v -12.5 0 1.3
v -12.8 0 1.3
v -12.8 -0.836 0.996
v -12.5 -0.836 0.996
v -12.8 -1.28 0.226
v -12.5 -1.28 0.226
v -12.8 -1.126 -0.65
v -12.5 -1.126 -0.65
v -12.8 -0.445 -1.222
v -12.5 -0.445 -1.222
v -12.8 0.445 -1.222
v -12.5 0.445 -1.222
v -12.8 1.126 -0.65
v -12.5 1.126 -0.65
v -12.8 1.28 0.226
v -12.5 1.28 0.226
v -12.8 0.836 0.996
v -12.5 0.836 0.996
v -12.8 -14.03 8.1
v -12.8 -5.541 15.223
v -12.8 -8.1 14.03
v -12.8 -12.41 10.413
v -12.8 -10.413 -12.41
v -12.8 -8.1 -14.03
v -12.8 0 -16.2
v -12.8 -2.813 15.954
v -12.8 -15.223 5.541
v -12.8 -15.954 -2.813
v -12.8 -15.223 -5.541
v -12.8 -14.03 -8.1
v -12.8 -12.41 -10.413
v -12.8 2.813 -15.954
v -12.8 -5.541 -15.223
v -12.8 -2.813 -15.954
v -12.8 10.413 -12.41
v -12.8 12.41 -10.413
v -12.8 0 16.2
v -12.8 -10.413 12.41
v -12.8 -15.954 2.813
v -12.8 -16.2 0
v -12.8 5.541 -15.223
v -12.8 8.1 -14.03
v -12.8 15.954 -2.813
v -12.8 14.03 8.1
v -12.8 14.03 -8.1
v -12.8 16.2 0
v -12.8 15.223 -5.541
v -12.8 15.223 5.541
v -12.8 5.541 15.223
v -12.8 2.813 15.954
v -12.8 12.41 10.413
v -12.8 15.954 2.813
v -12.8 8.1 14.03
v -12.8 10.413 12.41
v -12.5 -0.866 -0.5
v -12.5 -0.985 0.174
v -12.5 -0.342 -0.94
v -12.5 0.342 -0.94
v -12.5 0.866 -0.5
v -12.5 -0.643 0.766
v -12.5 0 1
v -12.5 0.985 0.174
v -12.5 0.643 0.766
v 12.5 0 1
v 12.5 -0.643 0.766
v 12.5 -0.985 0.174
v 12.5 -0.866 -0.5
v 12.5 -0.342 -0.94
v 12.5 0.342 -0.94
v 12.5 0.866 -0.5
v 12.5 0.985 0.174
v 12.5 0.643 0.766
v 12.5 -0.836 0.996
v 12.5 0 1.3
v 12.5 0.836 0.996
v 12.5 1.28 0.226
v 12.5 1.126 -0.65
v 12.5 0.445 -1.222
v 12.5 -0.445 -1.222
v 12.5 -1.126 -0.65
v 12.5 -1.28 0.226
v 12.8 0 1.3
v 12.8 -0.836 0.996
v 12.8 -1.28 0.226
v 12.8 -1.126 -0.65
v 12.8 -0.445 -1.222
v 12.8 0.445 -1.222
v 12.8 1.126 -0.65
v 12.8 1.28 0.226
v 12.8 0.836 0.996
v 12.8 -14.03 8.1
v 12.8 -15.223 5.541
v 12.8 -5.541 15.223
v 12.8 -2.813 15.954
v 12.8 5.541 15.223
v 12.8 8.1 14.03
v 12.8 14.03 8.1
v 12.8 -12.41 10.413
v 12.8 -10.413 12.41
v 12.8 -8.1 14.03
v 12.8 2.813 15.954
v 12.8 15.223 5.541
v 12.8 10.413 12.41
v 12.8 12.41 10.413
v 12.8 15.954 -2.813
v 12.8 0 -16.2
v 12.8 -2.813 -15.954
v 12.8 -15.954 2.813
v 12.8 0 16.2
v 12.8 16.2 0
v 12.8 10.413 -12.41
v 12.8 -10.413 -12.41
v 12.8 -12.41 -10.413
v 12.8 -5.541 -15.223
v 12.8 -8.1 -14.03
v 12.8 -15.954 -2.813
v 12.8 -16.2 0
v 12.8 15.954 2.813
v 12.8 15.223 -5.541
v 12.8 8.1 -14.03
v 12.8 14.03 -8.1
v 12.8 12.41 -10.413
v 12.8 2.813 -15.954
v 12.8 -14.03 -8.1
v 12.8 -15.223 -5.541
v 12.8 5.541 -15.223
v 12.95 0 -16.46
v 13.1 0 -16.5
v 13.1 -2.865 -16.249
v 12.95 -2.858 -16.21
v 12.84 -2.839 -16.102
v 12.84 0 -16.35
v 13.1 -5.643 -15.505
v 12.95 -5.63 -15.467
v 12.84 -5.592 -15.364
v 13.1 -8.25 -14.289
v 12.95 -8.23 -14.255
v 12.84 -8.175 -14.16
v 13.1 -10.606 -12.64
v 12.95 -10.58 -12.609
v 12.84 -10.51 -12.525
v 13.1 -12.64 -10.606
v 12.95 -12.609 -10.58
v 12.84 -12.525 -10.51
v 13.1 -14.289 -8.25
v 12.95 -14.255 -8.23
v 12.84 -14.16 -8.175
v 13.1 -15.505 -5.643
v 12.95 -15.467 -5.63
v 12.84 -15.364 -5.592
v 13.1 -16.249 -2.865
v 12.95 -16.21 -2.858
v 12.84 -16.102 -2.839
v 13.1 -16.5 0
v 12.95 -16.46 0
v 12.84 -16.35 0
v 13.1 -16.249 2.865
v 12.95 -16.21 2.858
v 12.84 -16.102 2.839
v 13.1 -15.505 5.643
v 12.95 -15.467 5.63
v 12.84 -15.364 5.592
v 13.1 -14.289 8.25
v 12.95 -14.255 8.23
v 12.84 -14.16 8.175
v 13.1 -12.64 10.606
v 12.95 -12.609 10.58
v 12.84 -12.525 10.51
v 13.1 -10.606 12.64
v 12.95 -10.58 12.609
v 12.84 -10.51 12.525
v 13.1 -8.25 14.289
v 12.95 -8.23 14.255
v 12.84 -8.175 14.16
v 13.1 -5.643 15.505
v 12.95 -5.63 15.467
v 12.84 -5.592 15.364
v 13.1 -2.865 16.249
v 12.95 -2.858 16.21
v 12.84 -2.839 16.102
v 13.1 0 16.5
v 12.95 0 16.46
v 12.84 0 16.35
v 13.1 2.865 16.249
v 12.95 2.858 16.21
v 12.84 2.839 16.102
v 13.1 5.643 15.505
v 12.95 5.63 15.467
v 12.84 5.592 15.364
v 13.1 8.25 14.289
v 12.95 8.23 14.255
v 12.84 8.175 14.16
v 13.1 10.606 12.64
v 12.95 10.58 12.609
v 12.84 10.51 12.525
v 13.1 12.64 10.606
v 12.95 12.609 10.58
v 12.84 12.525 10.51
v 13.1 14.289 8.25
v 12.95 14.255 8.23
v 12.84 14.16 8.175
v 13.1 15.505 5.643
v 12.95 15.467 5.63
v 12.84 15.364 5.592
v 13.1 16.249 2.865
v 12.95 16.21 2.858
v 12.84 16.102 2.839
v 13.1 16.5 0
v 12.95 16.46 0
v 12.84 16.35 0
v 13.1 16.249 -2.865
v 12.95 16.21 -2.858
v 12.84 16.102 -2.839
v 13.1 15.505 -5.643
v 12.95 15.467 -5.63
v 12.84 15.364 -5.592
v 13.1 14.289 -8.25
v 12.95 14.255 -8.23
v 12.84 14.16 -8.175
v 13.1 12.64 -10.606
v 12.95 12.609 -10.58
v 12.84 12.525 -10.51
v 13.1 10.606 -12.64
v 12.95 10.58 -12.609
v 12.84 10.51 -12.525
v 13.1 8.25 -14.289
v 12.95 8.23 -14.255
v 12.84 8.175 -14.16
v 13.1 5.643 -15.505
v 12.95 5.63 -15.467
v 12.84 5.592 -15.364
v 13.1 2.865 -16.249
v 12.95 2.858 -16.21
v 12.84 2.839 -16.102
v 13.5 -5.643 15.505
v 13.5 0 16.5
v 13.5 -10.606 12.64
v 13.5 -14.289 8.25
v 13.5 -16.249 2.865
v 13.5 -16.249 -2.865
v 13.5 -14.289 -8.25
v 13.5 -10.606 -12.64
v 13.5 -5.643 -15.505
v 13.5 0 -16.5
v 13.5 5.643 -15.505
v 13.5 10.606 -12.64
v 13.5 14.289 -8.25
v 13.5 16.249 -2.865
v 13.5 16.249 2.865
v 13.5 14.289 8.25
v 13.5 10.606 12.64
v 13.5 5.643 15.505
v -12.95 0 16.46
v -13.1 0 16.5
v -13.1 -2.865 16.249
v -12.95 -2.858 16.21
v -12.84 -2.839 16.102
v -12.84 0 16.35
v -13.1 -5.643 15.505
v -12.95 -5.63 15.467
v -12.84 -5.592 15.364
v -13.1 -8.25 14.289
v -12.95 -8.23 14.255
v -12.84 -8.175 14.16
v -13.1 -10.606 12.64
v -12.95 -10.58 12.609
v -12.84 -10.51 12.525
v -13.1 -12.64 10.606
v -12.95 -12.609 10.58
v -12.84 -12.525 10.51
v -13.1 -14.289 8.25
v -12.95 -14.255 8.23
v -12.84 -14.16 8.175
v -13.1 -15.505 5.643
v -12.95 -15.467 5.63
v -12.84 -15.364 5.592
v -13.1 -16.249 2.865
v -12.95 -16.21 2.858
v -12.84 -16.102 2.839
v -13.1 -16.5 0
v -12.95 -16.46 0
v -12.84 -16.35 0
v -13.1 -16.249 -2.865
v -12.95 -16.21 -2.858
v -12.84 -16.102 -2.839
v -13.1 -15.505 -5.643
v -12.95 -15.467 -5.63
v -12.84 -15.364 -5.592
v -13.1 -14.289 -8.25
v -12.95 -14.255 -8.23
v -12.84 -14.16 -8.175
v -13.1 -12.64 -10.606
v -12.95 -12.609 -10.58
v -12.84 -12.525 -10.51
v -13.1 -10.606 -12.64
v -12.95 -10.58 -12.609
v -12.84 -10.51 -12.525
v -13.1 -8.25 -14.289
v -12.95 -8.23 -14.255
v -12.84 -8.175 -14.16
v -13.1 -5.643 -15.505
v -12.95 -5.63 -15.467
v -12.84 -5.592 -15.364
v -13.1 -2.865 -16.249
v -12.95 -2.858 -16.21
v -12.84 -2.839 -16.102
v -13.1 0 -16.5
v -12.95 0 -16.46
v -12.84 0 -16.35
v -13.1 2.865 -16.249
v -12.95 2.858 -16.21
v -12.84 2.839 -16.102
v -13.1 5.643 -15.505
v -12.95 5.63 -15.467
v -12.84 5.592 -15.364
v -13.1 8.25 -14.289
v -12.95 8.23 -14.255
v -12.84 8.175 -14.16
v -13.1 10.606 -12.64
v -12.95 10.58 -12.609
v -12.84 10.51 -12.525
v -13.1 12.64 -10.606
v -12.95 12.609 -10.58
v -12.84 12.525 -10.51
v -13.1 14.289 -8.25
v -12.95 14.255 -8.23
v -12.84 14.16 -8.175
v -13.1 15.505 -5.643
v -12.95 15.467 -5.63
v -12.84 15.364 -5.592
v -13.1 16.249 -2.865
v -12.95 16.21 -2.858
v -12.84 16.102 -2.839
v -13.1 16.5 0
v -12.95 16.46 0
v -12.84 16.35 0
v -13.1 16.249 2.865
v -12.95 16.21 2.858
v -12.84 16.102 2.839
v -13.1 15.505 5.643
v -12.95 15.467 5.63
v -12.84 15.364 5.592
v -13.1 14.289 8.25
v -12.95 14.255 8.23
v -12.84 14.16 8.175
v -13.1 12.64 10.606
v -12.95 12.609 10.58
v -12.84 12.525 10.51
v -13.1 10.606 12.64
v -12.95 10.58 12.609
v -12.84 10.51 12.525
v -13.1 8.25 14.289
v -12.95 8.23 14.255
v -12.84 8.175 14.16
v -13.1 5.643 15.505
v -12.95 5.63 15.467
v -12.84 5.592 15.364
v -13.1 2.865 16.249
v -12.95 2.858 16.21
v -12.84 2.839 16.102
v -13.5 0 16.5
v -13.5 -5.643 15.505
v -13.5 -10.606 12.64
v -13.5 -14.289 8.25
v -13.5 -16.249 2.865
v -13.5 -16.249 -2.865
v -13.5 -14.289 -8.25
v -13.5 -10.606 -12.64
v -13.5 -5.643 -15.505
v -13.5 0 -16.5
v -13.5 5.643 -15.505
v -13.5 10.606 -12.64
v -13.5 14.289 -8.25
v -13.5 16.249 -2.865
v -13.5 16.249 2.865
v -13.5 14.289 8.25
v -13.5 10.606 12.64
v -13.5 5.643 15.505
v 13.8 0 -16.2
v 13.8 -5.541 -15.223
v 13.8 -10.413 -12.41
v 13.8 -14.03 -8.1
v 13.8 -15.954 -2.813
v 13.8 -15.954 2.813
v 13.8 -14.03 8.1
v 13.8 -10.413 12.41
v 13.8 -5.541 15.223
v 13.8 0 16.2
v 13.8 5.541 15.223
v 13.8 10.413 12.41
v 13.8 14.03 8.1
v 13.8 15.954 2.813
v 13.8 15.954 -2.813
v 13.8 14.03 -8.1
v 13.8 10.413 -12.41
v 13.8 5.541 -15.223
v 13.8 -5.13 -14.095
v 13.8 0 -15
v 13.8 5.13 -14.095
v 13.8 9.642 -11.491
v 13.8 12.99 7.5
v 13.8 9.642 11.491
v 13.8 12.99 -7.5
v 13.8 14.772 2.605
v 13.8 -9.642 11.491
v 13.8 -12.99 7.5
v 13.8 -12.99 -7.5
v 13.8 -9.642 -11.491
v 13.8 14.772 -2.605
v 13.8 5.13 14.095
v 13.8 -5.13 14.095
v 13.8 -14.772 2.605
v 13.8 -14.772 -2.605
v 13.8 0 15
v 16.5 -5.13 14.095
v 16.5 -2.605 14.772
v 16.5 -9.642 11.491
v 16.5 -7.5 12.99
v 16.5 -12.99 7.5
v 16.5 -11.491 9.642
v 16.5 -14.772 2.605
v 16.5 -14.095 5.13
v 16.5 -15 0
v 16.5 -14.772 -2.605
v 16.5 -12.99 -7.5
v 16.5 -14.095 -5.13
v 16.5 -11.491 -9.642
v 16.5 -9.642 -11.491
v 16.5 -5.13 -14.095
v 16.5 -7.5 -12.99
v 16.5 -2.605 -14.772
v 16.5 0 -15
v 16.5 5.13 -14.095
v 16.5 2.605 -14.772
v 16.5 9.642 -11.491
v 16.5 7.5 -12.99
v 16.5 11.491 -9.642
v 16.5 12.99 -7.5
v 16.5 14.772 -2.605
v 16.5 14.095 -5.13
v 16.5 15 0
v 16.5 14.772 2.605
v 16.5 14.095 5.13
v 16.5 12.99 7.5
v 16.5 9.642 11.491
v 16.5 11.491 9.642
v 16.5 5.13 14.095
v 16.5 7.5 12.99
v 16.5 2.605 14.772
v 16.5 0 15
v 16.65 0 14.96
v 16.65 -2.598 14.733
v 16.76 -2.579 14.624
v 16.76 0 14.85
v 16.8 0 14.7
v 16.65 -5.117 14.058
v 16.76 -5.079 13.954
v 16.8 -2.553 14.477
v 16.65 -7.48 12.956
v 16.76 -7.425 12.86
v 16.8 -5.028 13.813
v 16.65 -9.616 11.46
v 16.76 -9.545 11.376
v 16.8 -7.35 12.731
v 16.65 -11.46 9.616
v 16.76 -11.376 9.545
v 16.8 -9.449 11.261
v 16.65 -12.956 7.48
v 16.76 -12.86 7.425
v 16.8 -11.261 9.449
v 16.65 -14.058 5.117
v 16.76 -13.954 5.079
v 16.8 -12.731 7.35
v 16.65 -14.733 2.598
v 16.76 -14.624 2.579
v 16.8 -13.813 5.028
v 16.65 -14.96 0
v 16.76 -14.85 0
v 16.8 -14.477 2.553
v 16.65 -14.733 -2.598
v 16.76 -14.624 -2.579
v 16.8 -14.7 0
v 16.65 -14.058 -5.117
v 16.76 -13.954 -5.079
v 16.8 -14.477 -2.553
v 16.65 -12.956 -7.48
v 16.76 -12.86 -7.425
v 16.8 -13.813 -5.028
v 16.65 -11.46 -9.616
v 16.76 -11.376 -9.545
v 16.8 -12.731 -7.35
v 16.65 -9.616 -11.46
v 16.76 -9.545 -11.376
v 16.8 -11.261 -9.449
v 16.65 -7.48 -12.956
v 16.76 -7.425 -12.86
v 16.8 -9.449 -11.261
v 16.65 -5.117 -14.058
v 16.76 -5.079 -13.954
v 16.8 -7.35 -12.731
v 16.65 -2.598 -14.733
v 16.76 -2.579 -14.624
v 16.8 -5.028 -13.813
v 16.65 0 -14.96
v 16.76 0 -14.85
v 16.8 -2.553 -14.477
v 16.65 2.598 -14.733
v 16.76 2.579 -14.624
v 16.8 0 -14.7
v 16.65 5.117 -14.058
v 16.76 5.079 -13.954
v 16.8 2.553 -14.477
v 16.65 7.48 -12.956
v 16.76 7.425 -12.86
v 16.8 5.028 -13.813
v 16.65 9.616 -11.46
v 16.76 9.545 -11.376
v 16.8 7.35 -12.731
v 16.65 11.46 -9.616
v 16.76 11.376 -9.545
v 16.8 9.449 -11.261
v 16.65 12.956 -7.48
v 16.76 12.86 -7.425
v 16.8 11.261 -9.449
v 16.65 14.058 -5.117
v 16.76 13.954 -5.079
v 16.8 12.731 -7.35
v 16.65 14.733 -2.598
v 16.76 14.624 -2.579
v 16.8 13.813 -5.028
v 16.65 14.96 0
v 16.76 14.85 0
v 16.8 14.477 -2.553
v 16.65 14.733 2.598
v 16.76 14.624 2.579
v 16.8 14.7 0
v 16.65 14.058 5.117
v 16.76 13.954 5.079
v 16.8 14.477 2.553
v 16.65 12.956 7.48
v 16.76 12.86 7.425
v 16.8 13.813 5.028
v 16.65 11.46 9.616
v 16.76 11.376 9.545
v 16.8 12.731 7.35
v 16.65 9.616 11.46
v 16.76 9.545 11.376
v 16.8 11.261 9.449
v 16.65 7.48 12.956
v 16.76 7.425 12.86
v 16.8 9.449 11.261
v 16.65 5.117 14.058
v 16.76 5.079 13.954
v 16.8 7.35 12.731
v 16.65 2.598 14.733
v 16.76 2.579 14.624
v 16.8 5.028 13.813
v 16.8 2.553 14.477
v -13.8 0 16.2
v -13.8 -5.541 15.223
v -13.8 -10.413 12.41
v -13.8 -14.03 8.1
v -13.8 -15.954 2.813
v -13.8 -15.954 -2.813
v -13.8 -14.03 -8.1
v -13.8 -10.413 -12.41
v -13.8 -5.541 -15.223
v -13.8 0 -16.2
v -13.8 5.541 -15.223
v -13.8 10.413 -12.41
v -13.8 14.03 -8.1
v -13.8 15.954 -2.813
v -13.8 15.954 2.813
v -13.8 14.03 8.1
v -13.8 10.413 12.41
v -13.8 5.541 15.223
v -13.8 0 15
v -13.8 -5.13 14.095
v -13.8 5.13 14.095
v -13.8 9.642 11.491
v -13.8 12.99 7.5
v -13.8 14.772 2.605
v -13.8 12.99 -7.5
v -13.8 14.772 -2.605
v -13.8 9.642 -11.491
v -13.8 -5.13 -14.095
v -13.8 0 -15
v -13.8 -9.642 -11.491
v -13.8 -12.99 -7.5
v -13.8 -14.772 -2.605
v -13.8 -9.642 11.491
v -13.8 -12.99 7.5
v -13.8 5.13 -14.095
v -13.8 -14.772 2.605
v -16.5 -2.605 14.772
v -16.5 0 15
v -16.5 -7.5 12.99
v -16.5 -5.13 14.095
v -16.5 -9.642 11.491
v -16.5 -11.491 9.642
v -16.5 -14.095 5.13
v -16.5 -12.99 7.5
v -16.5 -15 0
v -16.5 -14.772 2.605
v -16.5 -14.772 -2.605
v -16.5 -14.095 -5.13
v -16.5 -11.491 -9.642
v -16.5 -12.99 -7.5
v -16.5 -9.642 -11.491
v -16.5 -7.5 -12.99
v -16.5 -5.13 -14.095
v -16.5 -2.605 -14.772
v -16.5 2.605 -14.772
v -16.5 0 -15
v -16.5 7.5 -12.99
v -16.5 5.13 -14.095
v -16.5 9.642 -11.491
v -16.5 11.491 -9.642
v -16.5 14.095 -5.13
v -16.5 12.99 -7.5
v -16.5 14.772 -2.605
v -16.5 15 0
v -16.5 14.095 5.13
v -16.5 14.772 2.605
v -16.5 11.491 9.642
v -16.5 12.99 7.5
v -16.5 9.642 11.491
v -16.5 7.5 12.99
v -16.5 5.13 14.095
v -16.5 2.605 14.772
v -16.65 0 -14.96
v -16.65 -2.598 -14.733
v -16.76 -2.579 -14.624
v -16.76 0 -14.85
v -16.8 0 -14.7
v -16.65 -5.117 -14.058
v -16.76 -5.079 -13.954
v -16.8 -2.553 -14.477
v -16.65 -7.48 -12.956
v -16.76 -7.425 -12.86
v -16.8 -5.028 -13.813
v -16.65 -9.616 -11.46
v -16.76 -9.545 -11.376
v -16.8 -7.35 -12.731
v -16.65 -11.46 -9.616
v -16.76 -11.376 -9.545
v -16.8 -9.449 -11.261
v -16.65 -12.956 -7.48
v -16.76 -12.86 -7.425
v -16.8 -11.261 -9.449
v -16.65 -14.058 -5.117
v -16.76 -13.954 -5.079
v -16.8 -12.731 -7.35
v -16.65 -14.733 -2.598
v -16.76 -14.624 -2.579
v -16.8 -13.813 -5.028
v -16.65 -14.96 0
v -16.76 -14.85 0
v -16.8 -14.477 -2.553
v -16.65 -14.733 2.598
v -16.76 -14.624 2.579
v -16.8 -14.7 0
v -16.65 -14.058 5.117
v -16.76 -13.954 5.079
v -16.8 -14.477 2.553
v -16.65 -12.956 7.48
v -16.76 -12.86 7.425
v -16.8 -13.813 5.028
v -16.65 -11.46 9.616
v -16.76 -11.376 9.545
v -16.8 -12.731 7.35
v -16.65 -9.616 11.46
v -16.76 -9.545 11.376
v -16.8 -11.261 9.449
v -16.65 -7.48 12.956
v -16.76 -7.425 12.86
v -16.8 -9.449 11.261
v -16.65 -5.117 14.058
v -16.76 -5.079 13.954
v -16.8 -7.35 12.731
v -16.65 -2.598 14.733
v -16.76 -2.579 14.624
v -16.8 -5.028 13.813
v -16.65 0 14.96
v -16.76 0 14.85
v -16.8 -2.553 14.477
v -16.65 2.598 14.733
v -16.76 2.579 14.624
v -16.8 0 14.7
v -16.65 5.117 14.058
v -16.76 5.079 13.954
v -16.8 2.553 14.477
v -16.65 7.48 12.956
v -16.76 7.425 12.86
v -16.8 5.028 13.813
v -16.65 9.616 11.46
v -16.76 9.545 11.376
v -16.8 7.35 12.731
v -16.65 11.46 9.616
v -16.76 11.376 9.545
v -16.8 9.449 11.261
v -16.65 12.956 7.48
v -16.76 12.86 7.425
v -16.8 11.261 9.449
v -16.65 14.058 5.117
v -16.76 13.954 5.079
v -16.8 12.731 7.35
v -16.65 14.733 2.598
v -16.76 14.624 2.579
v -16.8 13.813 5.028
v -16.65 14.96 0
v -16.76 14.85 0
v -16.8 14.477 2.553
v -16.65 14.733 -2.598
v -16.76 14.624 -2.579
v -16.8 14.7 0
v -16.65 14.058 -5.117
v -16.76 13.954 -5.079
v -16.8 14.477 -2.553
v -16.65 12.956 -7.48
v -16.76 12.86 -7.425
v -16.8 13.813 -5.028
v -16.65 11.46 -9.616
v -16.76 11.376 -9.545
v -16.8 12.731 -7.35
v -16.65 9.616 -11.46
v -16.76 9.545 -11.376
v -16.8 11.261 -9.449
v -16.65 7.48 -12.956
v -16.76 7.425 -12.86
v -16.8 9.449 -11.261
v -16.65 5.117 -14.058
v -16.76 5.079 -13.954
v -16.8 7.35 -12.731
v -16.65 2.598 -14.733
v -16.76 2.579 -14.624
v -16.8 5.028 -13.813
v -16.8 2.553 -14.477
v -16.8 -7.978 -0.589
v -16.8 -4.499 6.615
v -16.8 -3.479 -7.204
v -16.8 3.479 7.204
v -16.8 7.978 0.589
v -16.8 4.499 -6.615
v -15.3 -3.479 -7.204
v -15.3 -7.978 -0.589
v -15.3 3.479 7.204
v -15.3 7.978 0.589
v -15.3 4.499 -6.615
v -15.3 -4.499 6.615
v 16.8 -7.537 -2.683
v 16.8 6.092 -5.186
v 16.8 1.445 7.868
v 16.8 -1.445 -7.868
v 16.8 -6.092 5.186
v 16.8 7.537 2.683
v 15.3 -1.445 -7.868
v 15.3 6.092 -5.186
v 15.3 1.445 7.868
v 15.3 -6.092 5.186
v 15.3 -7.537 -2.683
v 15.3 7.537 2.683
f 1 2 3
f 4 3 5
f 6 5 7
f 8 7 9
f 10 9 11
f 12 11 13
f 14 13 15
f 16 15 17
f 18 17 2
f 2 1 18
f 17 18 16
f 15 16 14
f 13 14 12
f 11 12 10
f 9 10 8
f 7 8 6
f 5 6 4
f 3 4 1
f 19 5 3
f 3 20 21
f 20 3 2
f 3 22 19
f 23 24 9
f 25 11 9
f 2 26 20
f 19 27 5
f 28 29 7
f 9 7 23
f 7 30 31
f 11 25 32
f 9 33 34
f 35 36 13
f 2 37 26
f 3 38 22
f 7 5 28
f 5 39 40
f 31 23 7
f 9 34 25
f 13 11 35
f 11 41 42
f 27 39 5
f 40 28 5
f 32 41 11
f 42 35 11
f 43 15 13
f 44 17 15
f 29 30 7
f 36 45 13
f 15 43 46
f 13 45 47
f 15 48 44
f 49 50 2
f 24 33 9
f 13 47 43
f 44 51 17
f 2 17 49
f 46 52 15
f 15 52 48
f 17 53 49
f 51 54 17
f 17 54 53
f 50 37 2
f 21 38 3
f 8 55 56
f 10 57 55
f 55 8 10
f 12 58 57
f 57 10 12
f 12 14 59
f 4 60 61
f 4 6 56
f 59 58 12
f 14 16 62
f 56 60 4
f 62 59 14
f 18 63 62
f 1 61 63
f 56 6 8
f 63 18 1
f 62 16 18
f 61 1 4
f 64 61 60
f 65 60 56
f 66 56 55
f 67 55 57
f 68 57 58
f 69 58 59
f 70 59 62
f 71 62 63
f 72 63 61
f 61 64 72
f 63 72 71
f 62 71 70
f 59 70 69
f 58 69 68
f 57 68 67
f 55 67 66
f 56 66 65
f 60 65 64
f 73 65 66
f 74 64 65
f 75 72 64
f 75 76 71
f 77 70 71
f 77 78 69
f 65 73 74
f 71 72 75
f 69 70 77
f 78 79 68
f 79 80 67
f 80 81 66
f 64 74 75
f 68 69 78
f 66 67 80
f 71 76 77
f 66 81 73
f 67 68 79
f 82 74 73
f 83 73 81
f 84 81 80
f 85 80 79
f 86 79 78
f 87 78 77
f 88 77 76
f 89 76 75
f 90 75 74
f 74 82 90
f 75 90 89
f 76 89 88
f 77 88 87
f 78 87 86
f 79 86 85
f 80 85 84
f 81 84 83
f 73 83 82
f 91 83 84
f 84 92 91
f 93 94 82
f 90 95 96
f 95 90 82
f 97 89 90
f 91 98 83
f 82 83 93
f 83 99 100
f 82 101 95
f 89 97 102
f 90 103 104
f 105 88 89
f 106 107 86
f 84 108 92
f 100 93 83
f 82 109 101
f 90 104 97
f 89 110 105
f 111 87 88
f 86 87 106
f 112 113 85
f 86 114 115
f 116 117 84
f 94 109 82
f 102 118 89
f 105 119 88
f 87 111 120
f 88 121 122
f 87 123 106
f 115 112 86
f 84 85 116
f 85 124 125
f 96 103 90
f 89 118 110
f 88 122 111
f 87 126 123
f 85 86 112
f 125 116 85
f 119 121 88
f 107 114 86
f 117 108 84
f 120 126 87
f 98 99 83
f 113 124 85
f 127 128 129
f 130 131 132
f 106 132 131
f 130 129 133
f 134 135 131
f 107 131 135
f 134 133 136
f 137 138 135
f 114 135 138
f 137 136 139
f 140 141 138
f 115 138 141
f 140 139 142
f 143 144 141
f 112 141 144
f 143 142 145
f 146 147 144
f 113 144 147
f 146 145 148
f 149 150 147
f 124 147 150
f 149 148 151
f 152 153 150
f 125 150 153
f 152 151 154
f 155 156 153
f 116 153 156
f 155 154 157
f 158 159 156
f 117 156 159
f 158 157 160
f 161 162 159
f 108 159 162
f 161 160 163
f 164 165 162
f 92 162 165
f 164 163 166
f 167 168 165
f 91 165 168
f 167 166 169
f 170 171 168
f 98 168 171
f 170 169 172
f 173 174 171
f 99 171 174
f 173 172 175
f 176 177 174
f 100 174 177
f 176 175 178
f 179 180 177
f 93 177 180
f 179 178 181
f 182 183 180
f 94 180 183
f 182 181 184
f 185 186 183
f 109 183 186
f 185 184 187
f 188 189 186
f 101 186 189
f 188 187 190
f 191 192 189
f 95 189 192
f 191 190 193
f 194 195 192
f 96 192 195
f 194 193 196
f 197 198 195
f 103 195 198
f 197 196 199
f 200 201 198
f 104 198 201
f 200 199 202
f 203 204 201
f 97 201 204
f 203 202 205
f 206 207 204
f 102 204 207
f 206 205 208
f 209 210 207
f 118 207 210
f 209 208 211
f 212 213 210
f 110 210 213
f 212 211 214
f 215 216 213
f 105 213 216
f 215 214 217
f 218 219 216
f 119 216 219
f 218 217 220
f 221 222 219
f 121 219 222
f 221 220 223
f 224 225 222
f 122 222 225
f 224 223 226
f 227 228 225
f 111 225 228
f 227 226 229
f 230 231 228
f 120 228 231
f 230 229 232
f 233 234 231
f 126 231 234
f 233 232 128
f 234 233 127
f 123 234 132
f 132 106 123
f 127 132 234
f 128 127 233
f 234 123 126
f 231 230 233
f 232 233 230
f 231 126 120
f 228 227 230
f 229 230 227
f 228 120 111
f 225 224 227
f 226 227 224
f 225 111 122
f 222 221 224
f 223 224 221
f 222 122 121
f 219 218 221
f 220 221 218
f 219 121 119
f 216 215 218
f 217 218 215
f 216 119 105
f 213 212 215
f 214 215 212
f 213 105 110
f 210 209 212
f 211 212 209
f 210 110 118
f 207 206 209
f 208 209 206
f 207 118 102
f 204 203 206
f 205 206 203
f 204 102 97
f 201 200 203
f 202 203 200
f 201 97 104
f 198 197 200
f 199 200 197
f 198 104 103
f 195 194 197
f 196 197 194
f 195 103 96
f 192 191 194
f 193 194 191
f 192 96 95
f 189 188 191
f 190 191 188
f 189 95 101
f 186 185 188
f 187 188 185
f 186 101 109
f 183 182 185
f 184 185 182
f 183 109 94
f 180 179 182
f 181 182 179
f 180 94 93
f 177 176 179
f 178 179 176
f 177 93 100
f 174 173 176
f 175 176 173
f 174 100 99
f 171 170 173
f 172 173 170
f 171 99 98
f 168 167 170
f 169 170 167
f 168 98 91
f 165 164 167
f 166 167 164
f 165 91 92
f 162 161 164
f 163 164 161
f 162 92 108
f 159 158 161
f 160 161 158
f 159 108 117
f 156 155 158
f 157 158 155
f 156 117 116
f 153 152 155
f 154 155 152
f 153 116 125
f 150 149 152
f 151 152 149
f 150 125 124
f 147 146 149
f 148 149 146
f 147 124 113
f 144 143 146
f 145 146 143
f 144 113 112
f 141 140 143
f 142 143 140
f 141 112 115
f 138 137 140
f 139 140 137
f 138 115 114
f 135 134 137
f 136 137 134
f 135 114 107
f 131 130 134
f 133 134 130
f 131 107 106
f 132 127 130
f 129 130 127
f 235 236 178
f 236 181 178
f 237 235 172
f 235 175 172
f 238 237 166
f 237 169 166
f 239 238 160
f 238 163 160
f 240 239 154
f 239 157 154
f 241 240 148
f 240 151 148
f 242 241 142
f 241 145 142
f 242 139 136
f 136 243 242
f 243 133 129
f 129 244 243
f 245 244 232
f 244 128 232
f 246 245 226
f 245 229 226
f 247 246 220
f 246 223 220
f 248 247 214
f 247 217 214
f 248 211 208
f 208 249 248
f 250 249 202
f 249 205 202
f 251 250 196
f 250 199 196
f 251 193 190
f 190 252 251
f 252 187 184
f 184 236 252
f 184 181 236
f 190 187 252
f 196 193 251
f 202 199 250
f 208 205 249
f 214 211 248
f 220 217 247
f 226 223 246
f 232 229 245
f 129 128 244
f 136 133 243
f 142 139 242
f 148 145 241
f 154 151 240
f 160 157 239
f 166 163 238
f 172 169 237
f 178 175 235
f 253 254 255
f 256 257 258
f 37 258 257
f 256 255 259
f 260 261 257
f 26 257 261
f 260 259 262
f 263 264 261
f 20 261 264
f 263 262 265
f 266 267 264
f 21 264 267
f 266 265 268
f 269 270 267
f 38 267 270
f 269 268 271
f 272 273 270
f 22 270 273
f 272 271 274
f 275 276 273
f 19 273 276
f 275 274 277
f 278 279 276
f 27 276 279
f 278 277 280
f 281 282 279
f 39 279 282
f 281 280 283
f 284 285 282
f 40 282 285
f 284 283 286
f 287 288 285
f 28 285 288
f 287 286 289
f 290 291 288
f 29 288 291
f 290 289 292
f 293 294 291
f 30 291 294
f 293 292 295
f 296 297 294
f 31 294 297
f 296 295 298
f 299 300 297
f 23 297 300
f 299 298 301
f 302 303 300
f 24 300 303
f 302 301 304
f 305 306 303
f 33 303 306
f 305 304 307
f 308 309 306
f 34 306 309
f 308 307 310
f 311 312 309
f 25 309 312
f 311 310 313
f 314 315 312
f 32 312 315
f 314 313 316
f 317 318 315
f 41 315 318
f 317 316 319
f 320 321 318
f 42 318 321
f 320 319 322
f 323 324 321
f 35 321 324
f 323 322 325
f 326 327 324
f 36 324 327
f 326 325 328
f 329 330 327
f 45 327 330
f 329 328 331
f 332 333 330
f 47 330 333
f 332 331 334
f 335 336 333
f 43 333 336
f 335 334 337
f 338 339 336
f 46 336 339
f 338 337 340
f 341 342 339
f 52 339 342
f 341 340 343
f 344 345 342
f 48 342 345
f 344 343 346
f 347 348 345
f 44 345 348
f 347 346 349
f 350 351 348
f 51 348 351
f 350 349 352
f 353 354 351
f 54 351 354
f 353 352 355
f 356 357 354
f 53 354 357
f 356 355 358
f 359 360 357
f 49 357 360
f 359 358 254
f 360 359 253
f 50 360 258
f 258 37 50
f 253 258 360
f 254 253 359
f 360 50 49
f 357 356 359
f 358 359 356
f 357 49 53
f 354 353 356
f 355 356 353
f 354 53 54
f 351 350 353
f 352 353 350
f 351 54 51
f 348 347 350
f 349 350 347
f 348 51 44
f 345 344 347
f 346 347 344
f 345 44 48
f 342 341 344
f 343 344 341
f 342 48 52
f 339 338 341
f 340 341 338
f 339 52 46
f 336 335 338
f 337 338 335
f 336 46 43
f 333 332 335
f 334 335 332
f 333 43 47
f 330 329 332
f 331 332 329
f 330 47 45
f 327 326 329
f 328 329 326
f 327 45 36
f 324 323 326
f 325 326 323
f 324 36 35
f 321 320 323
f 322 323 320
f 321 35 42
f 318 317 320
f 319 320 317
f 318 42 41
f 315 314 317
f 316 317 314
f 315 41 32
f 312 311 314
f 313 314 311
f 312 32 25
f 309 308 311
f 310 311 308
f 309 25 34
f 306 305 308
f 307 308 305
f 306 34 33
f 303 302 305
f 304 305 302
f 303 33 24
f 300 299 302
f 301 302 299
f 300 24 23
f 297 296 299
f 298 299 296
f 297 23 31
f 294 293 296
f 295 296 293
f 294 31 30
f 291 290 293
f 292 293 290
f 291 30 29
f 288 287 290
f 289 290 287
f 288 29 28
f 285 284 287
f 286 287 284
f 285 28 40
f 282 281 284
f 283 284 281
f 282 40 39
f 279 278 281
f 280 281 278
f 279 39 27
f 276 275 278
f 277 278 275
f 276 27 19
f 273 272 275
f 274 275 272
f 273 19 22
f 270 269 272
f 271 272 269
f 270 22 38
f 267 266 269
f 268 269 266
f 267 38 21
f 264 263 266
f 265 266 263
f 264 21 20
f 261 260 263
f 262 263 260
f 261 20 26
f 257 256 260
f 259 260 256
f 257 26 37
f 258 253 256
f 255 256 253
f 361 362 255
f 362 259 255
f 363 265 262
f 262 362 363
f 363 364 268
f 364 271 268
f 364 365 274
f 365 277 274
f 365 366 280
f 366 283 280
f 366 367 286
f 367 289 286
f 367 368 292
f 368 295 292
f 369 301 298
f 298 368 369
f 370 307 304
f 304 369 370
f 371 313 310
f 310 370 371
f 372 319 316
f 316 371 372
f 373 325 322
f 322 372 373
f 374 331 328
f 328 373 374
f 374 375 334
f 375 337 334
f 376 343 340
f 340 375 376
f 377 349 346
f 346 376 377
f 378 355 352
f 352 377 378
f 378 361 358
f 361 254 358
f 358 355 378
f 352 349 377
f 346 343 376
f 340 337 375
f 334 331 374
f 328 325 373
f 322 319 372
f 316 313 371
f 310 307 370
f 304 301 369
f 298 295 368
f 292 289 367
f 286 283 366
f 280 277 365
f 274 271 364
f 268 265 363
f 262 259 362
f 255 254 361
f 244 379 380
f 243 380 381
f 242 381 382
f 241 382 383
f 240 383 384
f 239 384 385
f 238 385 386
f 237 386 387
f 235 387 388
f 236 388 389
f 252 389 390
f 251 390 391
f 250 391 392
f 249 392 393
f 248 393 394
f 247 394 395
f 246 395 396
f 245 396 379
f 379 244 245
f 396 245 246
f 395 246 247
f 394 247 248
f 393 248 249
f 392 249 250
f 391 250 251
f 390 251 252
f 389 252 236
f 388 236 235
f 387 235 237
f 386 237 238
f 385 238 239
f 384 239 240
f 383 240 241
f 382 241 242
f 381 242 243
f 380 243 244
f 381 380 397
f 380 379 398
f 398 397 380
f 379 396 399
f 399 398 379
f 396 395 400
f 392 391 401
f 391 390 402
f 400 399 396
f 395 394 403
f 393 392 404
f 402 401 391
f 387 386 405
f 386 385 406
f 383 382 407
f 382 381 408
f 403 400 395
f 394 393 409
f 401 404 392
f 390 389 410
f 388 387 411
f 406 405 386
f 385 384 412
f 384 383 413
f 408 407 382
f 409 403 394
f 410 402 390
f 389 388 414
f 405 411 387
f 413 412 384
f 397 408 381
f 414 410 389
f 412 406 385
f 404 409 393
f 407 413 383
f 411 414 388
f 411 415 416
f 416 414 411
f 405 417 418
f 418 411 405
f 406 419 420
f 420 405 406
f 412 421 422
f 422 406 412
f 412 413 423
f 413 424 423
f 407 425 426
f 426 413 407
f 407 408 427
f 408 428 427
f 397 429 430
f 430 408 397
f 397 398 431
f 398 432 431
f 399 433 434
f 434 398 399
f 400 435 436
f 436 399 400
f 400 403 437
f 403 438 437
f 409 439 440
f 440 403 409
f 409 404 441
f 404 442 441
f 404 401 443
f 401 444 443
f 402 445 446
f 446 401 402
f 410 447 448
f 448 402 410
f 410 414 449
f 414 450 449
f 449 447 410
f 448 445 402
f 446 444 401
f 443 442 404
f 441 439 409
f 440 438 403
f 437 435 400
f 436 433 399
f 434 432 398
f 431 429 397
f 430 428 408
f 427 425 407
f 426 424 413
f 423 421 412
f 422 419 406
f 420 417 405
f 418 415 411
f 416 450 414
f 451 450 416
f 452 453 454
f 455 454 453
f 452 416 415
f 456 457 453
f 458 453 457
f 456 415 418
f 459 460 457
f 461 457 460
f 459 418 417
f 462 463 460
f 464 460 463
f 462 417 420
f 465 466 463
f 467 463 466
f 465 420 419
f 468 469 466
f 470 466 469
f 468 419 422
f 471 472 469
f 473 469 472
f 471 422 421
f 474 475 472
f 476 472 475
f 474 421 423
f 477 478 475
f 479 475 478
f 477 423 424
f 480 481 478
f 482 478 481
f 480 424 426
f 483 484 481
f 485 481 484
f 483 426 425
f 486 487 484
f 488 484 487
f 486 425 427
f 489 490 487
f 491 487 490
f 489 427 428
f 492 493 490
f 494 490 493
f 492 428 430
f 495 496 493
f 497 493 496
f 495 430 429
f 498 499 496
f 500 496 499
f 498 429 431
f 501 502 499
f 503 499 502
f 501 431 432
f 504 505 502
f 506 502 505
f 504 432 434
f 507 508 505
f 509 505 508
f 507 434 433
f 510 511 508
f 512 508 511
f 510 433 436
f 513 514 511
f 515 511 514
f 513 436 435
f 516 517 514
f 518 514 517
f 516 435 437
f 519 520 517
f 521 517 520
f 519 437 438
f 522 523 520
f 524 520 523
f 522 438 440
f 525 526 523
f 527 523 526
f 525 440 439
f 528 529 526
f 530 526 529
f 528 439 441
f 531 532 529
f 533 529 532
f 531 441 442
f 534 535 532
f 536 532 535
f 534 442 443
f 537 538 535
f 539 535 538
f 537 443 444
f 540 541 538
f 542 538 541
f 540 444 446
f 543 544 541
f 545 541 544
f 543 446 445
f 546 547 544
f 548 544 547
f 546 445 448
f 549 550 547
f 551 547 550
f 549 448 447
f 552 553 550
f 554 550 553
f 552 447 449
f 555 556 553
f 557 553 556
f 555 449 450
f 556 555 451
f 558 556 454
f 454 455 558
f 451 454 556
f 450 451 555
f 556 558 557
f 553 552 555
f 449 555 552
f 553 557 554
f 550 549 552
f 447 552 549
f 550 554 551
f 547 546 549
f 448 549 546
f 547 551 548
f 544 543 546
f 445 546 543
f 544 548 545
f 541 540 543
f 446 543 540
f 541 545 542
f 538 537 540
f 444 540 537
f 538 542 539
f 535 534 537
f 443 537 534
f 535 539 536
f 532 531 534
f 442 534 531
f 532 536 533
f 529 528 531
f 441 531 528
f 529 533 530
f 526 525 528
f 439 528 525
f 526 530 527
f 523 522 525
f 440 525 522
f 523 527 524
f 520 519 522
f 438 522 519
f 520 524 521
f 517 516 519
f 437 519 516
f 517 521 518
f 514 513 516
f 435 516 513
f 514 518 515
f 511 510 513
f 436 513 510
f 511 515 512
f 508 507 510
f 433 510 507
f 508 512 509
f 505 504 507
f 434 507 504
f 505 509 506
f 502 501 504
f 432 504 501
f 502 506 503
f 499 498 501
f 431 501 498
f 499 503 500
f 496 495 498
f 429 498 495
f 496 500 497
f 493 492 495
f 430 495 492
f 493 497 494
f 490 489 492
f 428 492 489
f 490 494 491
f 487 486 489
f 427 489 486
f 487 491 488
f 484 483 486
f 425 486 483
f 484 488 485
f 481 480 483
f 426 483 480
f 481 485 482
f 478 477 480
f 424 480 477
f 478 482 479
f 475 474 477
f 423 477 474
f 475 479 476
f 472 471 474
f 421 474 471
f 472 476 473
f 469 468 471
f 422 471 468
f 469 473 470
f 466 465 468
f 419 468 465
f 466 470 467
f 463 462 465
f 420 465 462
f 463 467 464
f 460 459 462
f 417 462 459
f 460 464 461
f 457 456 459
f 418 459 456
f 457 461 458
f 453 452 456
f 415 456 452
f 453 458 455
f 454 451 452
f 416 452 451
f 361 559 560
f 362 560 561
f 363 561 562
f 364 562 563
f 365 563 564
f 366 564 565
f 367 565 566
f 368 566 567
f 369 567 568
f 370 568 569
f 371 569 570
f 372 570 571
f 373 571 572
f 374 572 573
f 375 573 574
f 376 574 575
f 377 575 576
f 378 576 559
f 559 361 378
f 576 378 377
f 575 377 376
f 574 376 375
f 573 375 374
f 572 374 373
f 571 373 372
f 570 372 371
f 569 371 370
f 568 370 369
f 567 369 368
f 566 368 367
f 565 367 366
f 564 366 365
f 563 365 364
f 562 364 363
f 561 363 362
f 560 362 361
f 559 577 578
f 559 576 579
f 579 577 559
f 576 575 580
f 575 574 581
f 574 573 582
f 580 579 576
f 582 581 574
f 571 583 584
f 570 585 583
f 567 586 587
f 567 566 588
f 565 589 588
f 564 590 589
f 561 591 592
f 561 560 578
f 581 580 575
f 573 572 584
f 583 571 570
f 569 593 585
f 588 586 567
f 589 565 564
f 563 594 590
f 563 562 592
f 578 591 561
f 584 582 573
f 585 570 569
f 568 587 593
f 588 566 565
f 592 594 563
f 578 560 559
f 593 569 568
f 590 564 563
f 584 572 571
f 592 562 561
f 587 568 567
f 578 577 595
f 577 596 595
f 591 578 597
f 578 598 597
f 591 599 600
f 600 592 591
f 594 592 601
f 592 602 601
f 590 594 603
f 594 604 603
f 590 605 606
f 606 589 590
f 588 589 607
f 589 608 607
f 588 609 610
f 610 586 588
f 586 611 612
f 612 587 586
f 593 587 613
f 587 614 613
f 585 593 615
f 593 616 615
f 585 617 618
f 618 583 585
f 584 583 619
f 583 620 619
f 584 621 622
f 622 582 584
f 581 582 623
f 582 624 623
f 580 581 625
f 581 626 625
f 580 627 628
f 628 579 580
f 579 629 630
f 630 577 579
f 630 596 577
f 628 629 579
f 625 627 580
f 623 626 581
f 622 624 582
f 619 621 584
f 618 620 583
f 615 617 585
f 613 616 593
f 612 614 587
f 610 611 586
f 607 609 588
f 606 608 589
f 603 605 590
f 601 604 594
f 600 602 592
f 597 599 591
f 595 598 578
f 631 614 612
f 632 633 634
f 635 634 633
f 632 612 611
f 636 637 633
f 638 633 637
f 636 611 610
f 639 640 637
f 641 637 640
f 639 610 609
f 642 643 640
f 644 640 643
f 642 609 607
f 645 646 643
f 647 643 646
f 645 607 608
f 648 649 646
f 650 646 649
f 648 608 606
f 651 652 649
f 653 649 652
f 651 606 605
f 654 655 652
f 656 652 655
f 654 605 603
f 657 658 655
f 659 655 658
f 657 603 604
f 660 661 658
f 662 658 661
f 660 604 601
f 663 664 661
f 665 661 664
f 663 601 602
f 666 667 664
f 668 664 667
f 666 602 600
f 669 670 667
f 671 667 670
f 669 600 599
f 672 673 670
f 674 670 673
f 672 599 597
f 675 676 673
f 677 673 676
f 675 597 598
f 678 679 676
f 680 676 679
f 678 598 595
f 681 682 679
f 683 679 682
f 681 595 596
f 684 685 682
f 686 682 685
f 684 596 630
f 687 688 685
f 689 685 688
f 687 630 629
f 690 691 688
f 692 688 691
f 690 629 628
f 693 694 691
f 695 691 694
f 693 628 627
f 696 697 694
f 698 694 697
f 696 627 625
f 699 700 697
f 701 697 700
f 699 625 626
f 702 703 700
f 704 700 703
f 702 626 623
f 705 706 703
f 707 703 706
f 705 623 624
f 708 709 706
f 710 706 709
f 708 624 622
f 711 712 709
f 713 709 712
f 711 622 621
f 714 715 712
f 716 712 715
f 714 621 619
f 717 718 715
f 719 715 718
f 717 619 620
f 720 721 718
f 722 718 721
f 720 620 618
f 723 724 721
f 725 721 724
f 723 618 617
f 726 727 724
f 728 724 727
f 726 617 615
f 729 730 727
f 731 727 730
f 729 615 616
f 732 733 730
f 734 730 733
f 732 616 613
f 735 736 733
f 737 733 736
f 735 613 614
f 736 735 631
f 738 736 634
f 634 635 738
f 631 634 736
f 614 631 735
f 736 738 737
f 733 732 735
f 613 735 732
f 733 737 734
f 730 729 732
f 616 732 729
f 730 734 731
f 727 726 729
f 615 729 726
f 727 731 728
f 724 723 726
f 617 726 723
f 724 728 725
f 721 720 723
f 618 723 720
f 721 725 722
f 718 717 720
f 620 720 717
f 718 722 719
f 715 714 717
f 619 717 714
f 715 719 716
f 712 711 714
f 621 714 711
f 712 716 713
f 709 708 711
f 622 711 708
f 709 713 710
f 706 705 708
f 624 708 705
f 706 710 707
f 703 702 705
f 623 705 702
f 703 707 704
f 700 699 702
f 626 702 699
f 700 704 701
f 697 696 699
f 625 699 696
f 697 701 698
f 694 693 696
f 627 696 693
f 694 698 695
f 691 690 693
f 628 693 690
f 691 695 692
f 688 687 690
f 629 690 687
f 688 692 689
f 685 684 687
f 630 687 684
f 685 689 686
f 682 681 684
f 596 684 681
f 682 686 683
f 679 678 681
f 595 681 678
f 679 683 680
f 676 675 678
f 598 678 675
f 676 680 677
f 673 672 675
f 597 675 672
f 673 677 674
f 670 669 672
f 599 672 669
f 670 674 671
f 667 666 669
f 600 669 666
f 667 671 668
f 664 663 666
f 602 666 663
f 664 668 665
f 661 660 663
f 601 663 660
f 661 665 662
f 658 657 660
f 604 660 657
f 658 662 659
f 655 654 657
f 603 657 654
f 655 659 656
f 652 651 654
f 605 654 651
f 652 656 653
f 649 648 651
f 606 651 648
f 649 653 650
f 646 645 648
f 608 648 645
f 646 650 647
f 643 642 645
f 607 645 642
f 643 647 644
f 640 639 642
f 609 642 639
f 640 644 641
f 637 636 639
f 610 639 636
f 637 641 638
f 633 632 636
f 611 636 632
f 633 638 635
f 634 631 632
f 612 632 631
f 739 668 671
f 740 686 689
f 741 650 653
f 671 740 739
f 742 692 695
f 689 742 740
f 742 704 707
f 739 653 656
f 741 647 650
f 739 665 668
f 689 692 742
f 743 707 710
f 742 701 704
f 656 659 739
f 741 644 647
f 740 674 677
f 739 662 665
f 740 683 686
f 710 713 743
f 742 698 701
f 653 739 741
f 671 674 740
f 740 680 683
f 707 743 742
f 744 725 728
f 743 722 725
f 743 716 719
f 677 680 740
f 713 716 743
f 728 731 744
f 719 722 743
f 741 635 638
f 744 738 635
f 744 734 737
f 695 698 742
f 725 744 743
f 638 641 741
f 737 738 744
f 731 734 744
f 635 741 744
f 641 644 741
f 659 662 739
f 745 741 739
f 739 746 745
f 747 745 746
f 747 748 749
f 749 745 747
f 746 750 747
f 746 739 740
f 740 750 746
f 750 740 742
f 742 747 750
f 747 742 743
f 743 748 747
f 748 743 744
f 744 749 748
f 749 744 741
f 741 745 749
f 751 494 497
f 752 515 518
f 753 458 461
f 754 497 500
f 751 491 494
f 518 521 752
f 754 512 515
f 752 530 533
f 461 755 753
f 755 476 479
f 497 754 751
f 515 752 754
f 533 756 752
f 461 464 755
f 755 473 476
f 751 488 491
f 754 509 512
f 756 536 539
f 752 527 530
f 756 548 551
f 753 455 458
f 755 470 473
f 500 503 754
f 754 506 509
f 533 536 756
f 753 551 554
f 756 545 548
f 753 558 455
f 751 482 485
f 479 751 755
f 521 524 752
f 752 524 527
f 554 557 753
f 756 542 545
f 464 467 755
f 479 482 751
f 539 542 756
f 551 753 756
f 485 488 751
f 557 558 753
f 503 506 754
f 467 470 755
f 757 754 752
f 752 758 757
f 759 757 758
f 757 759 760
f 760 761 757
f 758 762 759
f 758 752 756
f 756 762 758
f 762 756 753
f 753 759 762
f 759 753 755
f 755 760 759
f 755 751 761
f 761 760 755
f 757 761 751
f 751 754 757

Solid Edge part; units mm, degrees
sketch "Sketch1" plane through (0, 0, 0) normal (0, 0, 1) x (1, 0, 0)
  line L0 (-12.8, -1.3) -> (-12.8, -16.5)
  line L1 (-12.8, -16.5) -> (-13.8, -16.5)
  line L2 (-13.8, -16.5) -> (-13.8, -15)
  line L3 (-13.8, -15) -> (-16.8, -15)
  line L4 (-16.8, -15) -> (-16.8, 0)
  line L5 (-16.8, 0) -> (16.8, 0)
  line L6 (16.8, -15) -> (16.8, 0)
  line L7 (13.8, -15) -> (16.8, -15)
  line L8 (13.8, -16.5) -> (13.8, -15)
  line L9 (12.8, -16.5) -> (13.8, -16.5)
  line L10 (12.8, -1.3) -> (12.8, -16.5)
  line L11 (12.5, -1.3) -> (12.8, -1.3)
  line L12 (12.5, -1) -> (12.5, -1.3)
  line L13 (-12.5, -1) -> (12.5, -1)
  line L14 (-12.5, -1) -> (-12.5, -1.3)
  line L15 (-12.8, -1.3) -> (-12.5, -1.3)
revolve "RevolvedProtrusion1" add sketch "Sketch1" angle 360 about axis through (-16.5, 0, 0) along (1, 0, 0)
fillet "Round1" radius 0.3 4 edges at (-16.8, 0, 15) (-12.8, 0, 16.5) (12.8, 0, 16.5) (16.8, 0, 15)
chamfer "Chamfer_1" distance 0.3 angle 45 2 edges at (-13.8, 0, 16.5) (13.8, 0, 16.5)
sketch "Sketch2" plane through (-16.8, 0, 0) normal (-1, 0, 0) x (0, -1, 0)
  line L0 (-7.9783, 0.5885) -> (-4.4989, -6.6152)
  line L1 (-4.4989, -6.6152) -> (3.4795, -7.2037)
  line L2 (3.4795, -7.2037) -> (7.9783, -0.5885)
  line L3 (7.9783, -0.5885) -> (4.4989, 6.6152)
  line L4 (4.4989, 6.6152) -> (-3.4795, 7.2037)
  line L5 (-3.4795, 7.2037) -> (-7.9783, 0.5885)
  dimension "D1" = 16
extrude "ExtrudedCutout_1" cut sketch "Sketch2" against normal blind 1.5
sketch "Sketch3" plane through (16.8, 0, 0) normal (1, 0, 0) x (0, 1, 0)
  line L0 (-6.0918, 5.1855) -> (-7.5367, -2.6829)
  line L1 (-7.5367, -2.6829) -> (-1.4449, -7.8684)
  line L2 (-1.4449, -7.8684) -> (6.0918, -5.1855)
  line L3 (6.0918, -5.1855) -> (7.5367, 2.6829)
  line L4 (7.5367, 2.6829) -> (1.4449, 7.8684)
  line L5 (1.4449, 7.8684) -> (-6.0918, 5.1855)
  dimension "D1" = 16
extrude "ExtrudedCutout_2" cut sketch "Sketch3" against normal blind 1.5
